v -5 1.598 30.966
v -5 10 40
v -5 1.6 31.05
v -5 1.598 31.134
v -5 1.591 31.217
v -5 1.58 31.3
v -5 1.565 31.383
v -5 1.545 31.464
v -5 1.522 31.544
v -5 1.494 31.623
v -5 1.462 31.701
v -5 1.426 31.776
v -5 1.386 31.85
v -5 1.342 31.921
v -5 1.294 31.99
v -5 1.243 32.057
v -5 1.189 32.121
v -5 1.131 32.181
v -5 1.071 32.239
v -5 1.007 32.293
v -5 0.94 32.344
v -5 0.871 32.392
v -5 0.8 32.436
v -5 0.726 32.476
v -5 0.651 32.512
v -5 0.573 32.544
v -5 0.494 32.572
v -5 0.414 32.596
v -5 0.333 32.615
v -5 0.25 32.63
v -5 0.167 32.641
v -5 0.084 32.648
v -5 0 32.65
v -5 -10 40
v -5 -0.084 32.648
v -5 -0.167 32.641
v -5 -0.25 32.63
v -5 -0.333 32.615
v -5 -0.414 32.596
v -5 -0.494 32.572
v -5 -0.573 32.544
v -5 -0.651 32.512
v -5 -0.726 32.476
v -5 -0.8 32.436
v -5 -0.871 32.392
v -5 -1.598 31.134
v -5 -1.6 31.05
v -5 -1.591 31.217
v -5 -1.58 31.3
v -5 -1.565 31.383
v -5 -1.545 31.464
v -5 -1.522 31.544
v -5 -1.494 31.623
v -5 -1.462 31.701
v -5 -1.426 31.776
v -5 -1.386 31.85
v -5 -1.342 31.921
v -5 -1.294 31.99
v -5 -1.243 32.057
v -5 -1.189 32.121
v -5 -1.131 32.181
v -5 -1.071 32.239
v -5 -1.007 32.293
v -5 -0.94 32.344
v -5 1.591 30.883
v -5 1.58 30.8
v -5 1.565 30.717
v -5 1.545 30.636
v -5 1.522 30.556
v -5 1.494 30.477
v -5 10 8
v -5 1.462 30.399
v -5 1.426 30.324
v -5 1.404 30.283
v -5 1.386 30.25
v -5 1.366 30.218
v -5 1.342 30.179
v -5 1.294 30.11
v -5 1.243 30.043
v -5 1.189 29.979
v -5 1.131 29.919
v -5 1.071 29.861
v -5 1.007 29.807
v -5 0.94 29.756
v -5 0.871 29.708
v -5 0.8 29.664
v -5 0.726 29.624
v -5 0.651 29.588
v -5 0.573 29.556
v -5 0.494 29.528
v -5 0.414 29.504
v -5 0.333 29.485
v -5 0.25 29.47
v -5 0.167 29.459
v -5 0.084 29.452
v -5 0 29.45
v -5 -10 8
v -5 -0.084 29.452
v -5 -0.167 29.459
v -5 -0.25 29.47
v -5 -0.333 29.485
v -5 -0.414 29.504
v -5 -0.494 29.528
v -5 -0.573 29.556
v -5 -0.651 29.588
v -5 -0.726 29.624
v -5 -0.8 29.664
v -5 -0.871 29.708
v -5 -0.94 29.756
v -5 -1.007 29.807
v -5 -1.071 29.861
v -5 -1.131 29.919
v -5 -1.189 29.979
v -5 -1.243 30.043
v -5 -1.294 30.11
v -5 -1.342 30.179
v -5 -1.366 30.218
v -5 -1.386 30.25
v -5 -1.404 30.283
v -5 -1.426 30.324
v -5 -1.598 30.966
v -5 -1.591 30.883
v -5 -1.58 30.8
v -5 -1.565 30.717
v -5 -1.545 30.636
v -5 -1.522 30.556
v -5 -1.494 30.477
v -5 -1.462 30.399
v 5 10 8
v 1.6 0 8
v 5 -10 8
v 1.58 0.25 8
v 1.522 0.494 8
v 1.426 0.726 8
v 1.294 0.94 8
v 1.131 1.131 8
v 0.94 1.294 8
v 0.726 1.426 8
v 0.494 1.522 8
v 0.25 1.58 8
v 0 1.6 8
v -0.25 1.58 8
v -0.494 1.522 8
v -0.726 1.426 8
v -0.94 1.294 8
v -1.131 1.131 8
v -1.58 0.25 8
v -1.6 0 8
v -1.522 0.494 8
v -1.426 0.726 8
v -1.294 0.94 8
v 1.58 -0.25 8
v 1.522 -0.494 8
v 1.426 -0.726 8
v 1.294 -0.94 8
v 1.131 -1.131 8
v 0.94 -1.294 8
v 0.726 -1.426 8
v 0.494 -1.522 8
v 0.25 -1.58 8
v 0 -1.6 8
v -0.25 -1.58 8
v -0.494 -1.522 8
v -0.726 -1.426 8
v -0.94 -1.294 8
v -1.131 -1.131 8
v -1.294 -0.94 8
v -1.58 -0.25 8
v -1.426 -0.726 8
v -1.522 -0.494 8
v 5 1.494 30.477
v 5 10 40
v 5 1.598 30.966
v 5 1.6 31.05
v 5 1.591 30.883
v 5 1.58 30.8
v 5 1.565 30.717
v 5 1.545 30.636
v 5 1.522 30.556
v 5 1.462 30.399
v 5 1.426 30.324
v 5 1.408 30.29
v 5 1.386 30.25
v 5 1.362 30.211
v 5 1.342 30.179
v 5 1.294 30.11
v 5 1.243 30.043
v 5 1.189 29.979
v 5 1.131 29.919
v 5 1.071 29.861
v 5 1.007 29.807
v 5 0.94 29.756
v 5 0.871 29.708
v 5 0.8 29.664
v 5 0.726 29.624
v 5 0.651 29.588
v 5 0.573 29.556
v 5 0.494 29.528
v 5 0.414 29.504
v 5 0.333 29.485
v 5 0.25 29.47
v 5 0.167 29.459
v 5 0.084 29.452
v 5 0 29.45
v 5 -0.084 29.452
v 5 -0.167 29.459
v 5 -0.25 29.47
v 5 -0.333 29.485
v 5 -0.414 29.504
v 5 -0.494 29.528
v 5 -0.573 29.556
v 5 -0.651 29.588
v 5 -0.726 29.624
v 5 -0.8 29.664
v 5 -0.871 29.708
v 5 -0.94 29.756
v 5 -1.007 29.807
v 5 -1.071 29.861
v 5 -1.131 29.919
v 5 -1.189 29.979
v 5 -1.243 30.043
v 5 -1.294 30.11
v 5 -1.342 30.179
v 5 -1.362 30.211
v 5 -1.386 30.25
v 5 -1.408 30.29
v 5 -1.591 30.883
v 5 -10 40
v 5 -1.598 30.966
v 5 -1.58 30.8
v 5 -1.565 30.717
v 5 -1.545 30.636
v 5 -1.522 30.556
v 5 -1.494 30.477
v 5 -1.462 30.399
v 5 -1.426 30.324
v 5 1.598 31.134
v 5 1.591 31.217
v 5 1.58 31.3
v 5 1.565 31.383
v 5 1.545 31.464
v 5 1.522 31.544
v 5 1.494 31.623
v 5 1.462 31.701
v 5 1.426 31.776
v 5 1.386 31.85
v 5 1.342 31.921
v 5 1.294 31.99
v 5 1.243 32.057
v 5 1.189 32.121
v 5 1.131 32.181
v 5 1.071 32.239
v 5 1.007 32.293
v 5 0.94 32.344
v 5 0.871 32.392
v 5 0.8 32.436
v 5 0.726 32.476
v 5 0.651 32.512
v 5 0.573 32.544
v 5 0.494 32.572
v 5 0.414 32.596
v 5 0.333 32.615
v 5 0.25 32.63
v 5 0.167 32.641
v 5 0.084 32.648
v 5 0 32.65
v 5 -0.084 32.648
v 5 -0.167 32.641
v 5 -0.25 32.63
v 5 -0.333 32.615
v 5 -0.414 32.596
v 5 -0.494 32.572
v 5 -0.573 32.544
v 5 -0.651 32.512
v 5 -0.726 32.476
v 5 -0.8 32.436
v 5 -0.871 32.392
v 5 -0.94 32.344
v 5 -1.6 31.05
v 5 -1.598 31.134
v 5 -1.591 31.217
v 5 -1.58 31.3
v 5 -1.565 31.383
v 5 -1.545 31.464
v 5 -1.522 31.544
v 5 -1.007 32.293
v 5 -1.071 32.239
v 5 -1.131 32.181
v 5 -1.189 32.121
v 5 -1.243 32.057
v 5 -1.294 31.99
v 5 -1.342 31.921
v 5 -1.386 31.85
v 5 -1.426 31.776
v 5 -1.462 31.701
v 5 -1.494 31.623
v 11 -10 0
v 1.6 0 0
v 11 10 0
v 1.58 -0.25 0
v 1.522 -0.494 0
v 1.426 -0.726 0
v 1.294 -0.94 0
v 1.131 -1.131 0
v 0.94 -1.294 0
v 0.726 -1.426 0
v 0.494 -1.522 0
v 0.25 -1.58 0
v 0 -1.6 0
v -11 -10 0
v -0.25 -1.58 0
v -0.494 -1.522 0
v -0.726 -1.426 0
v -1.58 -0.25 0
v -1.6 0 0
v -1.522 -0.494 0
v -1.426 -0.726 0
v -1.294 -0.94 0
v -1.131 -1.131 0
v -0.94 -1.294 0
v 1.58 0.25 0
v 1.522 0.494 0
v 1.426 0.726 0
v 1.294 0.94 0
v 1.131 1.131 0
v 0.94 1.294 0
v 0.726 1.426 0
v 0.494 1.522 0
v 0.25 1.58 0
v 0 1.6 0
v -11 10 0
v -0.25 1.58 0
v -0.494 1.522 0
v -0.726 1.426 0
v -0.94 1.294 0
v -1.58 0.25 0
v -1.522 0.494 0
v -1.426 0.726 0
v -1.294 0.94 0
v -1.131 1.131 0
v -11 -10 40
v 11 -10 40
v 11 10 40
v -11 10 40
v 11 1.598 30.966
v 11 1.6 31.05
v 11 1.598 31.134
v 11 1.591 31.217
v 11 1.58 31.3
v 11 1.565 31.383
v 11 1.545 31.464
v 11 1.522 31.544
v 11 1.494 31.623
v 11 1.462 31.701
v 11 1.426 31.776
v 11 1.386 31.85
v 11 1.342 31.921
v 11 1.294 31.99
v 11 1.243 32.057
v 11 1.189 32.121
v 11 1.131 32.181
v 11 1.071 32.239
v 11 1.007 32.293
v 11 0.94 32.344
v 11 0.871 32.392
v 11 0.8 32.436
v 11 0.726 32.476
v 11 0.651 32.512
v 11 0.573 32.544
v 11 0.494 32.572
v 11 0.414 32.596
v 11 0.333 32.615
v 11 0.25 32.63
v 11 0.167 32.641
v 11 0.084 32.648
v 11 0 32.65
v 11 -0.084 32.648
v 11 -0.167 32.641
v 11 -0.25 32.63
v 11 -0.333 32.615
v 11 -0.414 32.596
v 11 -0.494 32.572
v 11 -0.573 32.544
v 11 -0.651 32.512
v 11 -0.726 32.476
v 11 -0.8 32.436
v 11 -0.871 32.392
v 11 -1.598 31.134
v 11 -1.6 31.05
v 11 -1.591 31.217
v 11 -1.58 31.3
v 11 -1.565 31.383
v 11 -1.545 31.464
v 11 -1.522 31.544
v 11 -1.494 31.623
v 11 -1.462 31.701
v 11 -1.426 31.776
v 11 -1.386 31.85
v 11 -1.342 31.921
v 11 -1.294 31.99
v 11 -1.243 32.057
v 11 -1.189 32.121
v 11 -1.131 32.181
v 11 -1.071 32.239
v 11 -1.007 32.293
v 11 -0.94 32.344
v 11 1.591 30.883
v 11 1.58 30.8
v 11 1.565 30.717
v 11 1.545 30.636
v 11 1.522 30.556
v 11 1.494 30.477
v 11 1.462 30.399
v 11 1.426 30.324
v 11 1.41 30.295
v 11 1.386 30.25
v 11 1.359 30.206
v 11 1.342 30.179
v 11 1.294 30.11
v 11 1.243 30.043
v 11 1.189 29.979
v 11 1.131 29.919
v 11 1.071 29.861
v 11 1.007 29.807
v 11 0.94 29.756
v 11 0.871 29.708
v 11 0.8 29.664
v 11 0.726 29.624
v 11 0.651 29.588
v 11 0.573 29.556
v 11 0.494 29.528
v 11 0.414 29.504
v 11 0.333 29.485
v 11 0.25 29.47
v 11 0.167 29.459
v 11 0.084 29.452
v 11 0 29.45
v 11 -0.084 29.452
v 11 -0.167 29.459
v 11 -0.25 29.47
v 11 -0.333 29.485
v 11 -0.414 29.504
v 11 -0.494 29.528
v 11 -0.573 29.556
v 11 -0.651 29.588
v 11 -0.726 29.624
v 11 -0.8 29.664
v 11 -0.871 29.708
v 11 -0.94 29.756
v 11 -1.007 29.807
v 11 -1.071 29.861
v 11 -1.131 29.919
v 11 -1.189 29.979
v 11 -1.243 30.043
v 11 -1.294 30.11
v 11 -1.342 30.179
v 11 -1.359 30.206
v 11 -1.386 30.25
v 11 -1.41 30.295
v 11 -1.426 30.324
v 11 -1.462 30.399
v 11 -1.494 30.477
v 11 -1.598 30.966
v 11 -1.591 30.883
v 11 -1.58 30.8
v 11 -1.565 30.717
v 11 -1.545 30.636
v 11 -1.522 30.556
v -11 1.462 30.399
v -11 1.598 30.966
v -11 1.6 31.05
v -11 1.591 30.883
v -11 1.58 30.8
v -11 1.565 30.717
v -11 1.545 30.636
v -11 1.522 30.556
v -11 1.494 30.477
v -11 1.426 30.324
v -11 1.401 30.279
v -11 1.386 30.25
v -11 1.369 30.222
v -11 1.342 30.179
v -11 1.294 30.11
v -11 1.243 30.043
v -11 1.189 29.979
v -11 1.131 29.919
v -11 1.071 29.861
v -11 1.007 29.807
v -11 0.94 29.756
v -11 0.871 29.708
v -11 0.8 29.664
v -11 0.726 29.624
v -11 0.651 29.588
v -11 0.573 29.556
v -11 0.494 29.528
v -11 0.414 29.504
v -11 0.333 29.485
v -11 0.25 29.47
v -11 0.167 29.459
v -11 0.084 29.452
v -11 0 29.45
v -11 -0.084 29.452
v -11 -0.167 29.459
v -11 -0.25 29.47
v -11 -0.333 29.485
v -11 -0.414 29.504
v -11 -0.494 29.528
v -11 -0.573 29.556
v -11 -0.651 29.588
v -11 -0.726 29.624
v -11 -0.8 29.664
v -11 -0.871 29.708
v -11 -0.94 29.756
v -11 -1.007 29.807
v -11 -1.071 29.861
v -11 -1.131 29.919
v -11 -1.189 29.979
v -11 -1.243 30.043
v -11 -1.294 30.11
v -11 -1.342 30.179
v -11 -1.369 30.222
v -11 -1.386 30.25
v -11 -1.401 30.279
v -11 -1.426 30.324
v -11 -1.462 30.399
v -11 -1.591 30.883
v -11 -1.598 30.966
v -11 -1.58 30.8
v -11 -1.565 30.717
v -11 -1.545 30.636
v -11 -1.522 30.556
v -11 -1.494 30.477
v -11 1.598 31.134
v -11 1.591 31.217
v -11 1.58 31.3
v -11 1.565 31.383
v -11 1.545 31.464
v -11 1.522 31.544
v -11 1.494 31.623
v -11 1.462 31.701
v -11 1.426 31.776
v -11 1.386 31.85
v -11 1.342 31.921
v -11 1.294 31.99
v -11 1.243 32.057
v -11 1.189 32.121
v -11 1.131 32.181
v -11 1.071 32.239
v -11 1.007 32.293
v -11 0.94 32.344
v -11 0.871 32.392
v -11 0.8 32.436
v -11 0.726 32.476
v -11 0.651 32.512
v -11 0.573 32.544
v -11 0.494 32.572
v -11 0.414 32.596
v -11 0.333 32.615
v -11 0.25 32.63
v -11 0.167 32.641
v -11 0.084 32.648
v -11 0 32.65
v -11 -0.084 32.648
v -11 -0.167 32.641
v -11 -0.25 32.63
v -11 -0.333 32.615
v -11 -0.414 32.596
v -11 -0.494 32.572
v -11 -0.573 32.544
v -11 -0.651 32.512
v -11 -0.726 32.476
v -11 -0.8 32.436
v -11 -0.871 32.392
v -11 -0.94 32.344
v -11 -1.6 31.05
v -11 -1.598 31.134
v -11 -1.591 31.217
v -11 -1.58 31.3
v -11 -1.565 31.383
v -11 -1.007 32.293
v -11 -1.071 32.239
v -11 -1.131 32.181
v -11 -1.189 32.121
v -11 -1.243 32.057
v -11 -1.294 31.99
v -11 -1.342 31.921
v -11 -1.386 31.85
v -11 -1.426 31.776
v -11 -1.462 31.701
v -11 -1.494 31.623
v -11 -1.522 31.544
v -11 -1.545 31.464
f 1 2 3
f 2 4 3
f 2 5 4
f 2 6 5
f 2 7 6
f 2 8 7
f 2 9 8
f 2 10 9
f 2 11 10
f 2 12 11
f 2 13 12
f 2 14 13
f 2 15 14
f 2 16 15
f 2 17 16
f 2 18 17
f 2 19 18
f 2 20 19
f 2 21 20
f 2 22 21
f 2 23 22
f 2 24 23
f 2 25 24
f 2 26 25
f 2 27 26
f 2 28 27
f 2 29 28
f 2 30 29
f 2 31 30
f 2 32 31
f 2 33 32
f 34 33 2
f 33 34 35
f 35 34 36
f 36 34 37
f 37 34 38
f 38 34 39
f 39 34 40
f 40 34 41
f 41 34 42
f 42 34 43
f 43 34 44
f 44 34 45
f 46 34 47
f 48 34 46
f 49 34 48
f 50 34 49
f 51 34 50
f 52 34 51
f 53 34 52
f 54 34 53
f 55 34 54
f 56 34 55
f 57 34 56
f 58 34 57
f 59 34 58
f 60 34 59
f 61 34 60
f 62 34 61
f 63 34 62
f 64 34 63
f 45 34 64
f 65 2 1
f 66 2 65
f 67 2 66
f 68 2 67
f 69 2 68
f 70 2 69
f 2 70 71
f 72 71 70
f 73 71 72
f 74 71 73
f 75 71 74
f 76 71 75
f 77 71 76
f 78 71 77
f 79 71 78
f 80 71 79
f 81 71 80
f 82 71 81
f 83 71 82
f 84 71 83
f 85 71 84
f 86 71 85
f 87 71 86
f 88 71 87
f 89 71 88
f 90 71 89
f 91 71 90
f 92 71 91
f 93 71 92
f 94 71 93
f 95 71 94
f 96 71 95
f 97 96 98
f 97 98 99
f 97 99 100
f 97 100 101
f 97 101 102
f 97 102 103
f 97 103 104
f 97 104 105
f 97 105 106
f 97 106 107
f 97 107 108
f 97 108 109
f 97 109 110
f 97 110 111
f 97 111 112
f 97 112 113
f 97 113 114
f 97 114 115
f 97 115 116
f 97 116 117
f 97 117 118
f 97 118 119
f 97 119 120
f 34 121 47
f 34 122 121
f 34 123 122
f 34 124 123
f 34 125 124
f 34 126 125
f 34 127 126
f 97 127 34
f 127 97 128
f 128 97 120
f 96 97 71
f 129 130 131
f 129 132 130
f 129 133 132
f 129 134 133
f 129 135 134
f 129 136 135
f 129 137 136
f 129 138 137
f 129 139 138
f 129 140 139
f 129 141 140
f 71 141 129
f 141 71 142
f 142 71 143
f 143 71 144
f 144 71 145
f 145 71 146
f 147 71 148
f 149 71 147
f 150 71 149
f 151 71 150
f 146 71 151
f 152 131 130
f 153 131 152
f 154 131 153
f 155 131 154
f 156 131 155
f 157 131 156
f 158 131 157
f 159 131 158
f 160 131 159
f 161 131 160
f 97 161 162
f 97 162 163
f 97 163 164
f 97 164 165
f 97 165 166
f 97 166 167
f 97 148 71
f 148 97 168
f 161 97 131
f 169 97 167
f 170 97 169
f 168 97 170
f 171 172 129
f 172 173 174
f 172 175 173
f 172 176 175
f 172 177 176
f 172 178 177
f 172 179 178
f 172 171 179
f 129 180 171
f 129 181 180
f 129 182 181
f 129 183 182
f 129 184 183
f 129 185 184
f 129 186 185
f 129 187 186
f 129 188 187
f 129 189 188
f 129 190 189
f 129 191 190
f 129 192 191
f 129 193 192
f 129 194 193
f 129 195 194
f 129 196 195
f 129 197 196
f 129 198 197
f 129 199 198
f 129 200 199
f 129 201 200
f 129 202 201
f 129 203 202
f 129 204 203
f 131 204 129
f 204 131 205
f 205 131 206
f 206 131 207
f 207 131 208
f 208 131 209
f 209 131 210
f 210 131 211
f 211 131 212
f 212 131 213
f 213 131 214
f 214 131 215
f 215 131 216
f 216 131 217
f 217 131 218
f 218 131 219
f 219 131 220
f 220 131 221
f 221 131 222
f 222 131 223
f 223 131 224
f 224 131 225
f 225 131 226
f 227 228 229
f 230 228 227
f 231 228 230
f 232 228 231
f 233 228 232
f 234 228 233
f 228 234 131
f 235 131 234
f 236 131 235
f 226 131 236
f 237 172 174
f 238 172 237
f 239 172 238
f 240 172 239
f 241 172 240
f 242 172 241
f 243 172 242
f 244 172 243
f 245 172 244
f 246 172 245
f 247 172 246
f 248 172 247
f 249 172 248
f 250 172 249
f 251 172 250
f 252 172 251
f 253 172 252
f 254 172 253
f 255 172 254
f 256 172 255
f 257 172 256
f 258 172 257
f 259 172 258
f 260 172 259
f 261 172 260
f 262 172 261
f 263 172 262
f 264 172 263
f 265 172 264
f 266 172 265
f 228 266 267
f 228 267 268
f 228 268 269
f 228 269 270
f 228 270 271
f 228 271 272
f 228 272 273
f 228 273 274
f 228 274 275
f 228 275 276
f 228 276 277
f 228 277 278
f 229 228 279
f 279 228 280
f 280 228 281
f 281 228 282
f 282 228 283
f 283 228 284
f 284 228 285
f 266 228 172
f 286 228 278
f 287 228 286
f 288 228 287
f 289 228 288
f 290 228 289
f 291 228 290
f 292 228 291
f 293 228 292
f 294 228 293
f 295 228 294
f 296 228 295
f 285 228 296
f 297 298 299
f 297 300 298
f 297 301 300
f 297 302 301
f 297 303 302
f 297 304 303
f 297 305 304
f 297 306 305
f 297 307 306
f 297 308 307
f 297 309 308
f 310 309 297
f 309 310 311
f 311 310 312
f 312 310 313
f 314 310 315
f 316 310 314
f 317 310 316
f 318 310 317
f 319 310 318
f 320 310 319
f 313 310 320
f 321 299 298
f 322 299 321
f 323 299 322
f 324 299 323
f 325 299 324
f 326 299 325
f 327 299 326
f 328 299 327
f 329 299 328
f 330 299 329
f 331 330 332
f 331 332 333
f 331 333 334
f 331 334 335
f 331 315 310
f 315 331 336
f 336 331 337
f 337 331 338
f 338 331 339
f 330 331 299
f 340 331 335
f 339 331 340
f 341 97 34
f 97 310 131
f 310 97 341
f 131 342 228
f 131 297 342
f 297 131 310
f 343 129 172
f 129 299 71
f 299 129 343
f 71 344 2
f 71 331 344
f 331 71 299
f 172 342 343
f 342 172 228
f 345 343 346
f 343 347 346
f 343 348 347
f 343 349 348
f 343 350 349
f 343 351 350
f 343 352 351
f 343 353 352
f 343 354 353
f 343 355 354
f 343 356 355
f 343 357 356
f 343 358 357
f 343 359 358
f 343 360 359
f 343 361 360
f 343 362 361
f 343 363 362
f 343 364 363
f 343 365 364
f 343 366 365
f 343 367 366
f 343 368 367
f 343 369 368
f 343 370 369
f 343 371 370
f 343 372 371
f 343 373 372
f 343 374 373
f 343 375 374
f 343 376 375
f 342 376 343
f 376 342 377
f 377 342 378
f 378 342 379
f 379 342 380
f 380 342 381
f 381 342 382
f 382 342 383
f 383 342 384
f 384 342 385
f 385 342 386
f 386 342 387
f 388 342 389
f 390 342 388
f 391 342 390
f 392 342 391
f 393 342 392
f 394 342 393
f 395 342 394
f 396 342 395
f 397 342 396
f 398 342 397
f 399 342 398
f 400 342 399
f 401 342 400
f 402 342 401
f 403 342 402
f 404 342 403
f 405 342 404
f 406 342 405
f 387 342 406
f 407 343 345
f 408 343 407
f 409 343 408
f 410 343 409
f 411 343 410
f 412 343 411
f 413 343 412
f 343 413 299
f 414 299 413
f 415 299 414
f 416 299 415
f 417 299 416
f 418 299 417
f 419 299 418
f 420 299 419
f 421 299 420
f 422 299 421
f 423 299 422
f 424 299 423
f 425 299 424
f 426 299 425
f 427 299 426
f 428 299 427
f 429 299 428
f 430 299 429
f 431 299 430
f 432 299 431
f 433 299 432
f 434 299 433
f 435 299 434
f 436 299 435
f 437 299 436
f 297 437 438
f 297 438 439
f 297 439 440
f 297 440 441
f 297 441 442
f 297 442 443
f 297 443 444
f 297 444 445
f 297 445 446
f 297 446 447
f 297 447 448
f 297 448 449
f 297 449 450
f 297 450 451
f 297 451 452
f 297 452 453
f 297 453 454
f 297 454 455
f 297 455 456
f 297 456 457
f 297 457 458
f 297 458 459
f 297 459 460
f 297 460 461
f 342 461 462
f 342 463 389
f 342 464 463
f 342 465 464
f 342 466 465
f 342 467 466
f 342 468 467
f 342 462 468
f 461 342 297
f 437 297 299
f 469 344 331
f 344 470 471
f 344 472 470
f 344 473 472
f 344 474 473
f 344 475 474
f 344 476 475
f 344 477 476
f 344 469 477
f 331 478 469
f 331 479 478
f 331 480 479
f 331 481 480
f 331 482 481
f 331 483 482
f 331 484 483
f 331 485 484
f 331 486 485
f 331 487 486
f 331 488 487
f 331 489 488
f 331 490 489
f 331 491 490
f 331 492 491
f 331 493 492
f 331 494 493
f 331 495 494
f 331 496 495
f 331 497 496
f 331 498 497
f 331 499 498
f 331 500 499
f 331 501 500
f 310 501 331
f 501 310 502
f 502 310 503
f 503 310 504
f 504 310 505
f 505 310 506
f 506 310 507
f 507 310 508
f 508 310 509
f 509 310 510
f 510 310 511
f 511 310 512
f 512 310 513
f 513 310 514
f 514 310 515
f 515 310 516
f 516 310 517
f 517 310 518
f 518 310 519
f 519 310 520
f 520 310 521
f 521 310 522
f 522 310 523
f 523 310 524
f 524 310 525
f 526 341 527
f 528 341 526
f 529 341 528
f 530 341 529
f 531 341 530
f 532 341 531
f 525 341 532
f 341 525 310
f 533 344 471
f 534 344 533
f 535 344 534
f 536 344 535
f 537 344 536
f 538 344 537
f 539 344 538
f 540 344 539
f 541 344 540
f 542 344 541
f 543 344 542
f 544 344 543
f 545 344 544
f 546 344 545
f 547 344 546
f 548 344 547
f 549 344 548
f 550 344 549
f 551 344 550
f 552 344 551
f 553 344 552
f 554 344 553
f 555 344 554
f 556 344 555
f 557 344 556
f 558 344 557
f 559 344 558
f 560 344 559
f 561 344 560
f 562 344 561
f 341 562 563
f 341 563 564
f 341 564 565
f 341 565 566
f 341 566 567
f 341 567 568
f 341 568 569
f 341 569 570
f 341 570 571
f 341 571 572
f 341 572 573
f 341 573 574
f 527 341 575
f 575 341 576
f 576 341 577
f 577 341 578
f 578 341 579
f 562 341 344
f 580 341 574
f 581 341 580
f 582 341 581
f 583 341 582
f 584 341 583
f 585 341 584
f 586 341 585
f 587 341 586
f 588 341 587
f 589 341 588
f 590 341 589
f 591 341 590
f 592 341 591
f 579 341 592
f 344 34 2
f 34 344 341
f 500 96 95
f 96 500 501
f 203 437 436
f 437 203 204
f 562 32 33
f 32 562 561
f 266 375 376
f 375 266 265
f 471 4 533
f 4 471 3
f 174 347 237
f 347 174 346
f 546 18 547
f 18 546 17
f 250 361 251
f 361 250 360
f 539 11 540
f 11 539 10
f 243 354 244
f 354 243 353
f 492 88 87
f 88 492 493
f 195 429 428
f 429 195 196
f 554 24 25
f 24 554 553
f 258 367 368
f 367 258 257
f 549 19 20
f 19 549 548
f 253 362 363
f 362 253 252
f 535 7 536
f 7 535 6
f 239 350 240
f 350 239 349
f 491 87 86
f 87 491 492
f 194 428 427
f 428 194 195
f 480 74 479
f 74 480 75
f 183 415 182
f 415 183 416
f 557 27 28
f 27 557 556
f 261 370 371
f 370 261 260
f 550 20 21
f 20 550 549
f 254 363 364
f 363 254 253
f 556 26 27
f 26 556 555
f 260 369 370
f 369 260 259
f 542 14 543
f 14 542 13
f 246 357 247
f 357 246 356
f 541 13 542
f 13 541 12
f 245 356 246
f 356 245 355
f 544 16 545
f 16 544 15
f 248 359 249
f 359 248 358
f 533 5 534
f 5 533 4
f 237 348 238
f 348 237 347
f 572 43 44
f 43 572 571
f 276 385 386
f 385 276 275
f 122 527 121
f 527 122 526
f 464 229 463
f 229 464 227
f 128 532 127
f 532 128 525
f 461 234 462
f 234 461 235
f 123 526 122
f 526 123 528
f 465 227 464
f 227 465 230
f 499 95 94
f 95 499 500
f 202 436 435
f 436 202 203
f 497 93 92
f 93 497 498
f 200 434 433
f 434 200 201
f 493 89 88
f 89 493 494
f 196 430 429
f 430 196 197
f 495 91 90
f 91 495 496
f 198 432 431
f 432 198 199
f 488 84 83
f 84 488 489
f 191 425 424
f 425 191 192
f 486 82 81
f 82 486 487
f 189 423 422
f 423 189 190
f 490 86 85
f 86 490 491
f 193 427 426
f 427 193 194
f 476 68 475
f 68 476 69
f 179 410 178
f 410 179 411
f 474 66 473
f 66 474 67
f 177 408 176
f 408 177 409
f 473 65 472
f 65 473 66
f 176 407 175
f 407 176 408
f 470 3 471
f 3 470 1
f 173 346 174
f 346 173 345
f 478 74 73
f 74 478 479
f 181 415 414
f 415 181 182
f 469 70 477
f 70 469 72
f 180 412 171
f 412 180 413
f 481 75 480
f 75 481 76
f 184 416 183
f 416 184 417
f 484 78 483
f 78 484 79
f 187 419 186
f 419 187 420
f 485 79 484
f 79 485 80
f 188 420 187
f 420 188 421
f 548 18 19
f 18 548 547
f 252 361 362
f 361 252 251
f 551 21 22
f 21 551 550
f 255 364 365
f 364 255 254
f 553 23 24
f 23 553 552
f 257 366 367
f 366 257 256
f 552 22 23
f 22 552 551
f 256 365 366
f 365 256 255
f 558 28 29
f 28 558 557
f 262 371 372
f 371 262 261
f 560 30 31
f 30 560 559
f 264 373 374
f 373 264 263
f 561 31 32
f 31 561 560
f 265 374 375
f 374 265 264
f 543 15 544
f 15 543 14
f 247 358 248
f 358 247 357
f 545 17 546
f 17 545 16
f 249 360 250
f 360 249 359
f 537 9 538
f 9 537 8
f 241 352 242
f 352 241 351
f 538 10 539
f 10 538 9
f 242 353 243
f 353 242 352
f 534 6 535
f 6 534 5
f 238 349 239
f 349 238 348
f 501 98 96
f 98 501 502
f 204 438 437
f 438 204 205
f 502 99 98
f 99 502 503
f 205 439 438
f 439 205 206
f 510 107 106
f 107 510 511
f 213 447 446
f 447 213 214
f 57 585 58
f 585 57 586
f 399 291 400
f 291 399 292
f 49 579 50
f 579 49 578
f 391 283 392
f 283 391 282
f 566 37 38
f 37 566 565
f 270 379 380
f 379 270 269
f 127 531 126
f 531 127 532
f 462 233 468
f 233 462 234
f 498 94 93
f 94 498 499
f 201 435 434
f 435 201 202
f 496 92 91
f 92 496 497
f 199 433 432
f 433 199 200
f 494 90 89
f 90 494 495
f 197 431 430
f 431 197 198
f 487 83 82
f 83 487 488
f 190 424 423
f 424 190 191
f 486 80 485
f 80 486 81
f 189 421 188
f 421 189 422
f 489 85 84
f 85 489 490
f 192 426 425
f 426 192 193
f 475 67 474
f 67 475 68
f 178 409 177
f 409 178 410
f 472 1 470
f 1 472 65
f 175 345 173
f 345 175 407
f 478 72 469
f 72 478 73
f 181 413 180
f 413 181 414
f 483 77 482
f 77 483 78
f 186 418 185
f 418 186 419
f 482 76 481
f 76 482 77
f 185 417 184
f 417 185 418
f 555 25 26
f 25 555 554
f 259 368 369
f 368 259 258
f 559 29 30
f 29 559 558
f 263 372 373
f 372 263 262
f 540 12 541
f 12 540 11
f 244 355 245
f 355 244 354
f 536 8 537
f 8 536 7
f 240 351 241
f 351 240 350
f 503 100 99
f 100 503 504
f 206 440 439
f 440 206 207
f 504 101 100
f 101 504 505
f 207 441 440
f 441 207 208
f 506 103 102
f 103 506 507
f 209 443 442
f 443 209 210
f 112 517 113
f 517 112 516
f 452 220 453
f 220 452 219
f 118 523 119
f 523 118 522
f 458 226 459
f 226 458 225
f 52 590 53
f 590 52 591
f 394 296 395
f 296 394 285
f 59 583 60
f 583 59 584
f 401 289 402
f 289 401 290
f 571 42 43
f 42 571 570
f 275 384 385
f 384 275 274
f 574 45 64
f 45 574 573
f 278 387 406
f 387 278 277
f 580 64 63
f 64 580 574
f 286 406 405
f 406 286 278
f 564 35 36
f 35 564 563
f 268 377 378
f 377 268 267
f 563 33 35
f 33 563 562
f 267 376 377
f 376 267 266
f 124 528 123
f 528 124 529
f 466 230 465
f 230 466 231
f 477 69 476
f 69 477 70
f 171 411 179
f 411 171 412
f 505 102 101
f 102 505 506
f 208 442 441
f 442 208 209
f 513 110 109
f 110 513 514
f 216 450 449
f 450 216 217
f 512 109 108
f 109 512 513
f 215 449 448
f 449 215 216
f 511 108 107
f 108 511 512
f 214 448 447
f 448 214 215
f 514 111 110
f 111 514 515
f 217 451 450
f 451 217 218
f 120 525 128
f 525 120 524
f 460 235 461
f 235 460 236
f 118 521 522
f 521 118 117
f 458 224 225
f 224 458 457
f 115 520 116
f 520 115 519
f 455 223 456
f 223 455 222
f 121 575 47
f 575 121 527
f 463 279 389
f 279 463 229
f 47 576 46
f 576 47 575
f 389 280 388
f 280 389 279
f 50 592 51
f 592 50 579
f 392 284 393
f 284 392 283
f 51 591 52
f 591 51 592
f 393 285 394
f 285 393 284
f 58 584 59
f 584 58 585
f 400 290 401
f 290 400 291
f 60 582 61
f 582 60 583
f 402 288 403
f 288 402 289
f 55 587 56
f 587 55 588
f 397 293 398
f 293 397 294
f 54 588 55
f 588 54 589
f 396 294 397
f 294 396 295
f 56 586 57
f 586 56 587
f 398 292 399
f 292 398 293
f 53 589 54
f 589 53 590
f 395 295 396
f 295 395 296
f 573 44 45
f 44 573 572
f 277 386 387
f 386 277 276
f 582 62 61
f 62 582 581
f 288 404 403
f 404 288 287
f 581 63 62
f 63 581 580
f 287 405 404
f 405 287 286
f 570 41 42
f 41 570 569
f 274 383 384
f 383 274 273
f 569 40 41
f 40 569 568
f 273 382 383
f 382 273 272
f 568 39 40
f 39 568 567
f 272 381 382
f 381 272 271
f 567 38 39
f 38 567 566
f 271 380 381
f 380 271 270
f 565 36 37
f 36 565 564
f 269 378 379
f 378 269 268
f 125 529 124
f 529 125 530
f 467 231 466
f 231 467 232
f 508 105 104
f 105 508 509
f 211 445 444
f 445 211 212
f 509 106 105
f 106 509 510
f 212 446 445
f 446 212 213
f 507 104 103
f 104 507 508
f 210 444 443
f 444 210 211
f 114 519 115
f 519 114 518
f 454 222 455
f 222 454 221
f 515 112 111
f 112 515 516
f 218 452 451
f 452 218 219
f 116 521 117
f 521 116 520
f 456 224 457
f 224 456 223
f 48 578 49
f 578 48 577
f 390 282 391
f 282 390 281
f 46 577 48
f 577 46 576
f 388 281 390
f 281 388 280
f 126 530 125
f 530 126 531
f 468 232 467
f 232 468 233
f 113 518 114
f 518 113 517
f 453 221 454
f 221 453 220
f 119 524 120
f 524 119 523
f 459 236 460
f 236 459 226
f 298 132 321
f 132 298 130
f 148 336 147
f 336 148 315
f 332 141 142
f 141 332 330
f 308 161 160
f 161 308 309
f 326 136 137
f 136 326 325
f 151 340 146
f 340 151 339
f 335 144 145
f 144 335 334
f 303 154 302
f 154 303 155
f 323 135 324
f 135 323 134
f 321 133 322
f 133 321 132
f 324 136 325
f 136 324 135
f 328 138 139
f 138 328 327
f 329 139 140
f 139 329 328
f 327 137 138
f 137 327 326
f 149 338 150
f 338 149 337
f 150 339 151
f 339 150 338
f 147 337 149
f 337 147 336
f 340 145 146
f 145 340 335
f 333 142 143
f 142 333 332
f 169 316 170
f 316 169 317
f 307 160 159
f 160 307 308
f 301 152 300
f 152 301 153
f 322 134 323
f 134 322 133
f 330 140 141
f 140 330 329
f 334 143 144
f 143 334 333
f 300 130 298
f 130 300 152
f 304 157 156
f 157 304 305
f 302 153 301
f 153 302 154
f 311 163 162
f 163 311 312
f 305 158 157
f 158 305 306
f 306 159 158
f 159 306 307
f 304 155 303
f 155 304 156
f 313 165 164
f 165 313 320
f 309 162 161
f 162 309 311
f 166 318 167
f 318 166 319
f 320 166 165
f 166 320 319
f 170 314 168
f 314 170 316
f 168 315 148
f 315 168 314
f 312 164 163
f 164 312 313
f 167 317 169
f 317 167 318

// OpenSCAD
//This is an openscad part used as a pulley to connect to the shaft

//render
//lower_flange();
//translate([-h_lip-h_body/2,0,d_shaft+2*t_hub])
//rotate([0,90,0])
//idler_pulley();

bracket();

//===========Parameters===========

num_frames = 12; //total number of frames to make cutouts for
panel_width = 1.625*25.4;  //size of each panel

//===========Geometry============
clearance = 0.1; //mm - amount to oversize holes so that parts will assemble

d_shaft = .75*25.4; //0.75" shaft diameter in mm
d_mag = 8.1; //  diamete of magnets in mm
h_mag = 2.1; //mm the heigh of the magnets
d_pin = 0.125*25.4; // diameter of pins used to hold shaft to flange
d_flange = 7*25.4; // outer diameter of the flange 
t_flange = 6; //thickness of the flang in mm
t_hub = 6; //thickness of the material around the hub
h_hub = 25; //height of the hub from the surface of the flange
edge_space = 5; //mm from the edge of the flange to the closest part of the frame
d_base = d_shaft+2*t_hub+6;
t_base = 3; //mm thickness of base web
t_panel = 3;//mm how thick each panel is
panel_cut = 3; //mm how deep of a recess to cut for each panel

h_lip = 1.45; //mm height of the lip that keeps the belt in place
h_body = 3.7; //mm height of the body area the belt rides on

t_lip = 0.75; //mm diamater of lip above body
d_cut = 3.2; //mm diameter in bore size 

inner_clear = 10; //mm space between arms
t_arm = 6; //mm thickness of each arm
h_arm = 40; //mm length of each arm
t_base = 8; //mm thickness of the base
depth = 20; //mm how deep the assembly is


fudge = 0.01; //mm - use this value to make sure surfaces aren't coincident
//===========Modules=============
module lower_flange(){
    difference(){
        //Make the core of the flange
        union(){
            //This makes the base of the flange
            //cylinder(r = d_flange/2, h= t_flange, $fn = 360);
            //This makes the hub
            //translate([0,0,t_flange-fudge])
            cylinder(r=d_base,h=t_base,$fn = 120);
            cylinder(r = d_shaft/2+t_hub, h = h_hub+t_flange, $fn = 120);
            //add in a block to mate the disks
            translate([-49/2,-10.1/2,0])
            cube([49,10.1,6+t_base]);
        }
        //Then subtract things from it
        
        //Subtract the hole for the shaft
        translate([0,0,-fudge])
        cylinder(r = d_shaft/2+clearance,h = t_flange+h_hub+2*fudge,$fn = 120);
        
        //cut a pin to register the flange to the shaft
               
        translate([0,0,t_flange+h_hub*.5])
        rotate([90,0,0]) 
        cylinder(r=d_pin/2,h=5*d_shaft+2*t_hub+2*fudge,$fn=20,center=true);
        //subtract the holes for the frames
        for (i=[0:num_frames-1]){
            cord_calc(i);
            mag_holes(i);
            
            
        }
        
 
    }
    
  
    
    
    
    
}
module cord_calc(i){
    theta = 2*3.1415/num_frames;
    r_panel = (d_flange/2-edge_space)*cos(theta/2)-t_panel;
 
    rotate([0,0,i*theta*180/3.1415])
    translate([r_panel,-panel_width/2,t_flange+fudge-panel_cut])
    cube([t_panel+clearance,panel_width+clearance,panel_cut]);
  
}

module mag_holes(i){
    theta = 2*3.1415/num_frames;
    
    rotate([0,0,i*theta*180/3.1415])
    translate([d_flange/2-d_mag/2-edge_space,0,-fudge])
    cylinder(r=d_mag/2+clearance, h=h_mag, $fn = 20);
    
}
module idler_pulley(){
    difference(){
        union(){
        //create the surface of the pulley that the belt rides on
        translate([0,0,h_lip])
        cylinder(r = d_shaft/2+t_hub, h = h_body, $fn = 120);
        //lower lip
        cylinder(r = d_shaft/2+t_hub+t_lip, h = h_lip+fudge, $fn = 120);
        //upper lip
        translate([0,0,h_lip+h_body-fudge])
        cylinder(r = d_shaft/2+t_hub+t_lip, h = h_lip+fudge, $fn = 120);        
    }
        //subtract out center hole
        translate([0,0,-fudge])
        cylinder(r = d_cut/2, h = h_body+2*h_lip+2*fudge,$fn=120);
    
    }
}

module bracket(){
    difference(){
        union(){
            //create the base
            translate([-inner_clear/2,-depth/2,0])
            cube([inner_clear,depth,t_base]);
            //right arm
            translate([inner_clear/2,-depth/2,0])
            cube([t_arm,depth,h_arm]);
            //left arme
            translate([-inner_clear/2-t_arm,-depth/2,0])
            cube([t_arm,depth,h_arm]);        
    }
        //subtract out center hole
        translate([-50,0,d_shaft+2*t_hub])
        rotate([0,90,0])
        cylinder(r = d_cut/2, h = 100,$fn=120);
    
        //subtract out mounting hole
        translate([0,0,-fudge])
        cylinder(r = d_cut/2,h = 100, $fn = 40);
    
    }
    
    
    
}
